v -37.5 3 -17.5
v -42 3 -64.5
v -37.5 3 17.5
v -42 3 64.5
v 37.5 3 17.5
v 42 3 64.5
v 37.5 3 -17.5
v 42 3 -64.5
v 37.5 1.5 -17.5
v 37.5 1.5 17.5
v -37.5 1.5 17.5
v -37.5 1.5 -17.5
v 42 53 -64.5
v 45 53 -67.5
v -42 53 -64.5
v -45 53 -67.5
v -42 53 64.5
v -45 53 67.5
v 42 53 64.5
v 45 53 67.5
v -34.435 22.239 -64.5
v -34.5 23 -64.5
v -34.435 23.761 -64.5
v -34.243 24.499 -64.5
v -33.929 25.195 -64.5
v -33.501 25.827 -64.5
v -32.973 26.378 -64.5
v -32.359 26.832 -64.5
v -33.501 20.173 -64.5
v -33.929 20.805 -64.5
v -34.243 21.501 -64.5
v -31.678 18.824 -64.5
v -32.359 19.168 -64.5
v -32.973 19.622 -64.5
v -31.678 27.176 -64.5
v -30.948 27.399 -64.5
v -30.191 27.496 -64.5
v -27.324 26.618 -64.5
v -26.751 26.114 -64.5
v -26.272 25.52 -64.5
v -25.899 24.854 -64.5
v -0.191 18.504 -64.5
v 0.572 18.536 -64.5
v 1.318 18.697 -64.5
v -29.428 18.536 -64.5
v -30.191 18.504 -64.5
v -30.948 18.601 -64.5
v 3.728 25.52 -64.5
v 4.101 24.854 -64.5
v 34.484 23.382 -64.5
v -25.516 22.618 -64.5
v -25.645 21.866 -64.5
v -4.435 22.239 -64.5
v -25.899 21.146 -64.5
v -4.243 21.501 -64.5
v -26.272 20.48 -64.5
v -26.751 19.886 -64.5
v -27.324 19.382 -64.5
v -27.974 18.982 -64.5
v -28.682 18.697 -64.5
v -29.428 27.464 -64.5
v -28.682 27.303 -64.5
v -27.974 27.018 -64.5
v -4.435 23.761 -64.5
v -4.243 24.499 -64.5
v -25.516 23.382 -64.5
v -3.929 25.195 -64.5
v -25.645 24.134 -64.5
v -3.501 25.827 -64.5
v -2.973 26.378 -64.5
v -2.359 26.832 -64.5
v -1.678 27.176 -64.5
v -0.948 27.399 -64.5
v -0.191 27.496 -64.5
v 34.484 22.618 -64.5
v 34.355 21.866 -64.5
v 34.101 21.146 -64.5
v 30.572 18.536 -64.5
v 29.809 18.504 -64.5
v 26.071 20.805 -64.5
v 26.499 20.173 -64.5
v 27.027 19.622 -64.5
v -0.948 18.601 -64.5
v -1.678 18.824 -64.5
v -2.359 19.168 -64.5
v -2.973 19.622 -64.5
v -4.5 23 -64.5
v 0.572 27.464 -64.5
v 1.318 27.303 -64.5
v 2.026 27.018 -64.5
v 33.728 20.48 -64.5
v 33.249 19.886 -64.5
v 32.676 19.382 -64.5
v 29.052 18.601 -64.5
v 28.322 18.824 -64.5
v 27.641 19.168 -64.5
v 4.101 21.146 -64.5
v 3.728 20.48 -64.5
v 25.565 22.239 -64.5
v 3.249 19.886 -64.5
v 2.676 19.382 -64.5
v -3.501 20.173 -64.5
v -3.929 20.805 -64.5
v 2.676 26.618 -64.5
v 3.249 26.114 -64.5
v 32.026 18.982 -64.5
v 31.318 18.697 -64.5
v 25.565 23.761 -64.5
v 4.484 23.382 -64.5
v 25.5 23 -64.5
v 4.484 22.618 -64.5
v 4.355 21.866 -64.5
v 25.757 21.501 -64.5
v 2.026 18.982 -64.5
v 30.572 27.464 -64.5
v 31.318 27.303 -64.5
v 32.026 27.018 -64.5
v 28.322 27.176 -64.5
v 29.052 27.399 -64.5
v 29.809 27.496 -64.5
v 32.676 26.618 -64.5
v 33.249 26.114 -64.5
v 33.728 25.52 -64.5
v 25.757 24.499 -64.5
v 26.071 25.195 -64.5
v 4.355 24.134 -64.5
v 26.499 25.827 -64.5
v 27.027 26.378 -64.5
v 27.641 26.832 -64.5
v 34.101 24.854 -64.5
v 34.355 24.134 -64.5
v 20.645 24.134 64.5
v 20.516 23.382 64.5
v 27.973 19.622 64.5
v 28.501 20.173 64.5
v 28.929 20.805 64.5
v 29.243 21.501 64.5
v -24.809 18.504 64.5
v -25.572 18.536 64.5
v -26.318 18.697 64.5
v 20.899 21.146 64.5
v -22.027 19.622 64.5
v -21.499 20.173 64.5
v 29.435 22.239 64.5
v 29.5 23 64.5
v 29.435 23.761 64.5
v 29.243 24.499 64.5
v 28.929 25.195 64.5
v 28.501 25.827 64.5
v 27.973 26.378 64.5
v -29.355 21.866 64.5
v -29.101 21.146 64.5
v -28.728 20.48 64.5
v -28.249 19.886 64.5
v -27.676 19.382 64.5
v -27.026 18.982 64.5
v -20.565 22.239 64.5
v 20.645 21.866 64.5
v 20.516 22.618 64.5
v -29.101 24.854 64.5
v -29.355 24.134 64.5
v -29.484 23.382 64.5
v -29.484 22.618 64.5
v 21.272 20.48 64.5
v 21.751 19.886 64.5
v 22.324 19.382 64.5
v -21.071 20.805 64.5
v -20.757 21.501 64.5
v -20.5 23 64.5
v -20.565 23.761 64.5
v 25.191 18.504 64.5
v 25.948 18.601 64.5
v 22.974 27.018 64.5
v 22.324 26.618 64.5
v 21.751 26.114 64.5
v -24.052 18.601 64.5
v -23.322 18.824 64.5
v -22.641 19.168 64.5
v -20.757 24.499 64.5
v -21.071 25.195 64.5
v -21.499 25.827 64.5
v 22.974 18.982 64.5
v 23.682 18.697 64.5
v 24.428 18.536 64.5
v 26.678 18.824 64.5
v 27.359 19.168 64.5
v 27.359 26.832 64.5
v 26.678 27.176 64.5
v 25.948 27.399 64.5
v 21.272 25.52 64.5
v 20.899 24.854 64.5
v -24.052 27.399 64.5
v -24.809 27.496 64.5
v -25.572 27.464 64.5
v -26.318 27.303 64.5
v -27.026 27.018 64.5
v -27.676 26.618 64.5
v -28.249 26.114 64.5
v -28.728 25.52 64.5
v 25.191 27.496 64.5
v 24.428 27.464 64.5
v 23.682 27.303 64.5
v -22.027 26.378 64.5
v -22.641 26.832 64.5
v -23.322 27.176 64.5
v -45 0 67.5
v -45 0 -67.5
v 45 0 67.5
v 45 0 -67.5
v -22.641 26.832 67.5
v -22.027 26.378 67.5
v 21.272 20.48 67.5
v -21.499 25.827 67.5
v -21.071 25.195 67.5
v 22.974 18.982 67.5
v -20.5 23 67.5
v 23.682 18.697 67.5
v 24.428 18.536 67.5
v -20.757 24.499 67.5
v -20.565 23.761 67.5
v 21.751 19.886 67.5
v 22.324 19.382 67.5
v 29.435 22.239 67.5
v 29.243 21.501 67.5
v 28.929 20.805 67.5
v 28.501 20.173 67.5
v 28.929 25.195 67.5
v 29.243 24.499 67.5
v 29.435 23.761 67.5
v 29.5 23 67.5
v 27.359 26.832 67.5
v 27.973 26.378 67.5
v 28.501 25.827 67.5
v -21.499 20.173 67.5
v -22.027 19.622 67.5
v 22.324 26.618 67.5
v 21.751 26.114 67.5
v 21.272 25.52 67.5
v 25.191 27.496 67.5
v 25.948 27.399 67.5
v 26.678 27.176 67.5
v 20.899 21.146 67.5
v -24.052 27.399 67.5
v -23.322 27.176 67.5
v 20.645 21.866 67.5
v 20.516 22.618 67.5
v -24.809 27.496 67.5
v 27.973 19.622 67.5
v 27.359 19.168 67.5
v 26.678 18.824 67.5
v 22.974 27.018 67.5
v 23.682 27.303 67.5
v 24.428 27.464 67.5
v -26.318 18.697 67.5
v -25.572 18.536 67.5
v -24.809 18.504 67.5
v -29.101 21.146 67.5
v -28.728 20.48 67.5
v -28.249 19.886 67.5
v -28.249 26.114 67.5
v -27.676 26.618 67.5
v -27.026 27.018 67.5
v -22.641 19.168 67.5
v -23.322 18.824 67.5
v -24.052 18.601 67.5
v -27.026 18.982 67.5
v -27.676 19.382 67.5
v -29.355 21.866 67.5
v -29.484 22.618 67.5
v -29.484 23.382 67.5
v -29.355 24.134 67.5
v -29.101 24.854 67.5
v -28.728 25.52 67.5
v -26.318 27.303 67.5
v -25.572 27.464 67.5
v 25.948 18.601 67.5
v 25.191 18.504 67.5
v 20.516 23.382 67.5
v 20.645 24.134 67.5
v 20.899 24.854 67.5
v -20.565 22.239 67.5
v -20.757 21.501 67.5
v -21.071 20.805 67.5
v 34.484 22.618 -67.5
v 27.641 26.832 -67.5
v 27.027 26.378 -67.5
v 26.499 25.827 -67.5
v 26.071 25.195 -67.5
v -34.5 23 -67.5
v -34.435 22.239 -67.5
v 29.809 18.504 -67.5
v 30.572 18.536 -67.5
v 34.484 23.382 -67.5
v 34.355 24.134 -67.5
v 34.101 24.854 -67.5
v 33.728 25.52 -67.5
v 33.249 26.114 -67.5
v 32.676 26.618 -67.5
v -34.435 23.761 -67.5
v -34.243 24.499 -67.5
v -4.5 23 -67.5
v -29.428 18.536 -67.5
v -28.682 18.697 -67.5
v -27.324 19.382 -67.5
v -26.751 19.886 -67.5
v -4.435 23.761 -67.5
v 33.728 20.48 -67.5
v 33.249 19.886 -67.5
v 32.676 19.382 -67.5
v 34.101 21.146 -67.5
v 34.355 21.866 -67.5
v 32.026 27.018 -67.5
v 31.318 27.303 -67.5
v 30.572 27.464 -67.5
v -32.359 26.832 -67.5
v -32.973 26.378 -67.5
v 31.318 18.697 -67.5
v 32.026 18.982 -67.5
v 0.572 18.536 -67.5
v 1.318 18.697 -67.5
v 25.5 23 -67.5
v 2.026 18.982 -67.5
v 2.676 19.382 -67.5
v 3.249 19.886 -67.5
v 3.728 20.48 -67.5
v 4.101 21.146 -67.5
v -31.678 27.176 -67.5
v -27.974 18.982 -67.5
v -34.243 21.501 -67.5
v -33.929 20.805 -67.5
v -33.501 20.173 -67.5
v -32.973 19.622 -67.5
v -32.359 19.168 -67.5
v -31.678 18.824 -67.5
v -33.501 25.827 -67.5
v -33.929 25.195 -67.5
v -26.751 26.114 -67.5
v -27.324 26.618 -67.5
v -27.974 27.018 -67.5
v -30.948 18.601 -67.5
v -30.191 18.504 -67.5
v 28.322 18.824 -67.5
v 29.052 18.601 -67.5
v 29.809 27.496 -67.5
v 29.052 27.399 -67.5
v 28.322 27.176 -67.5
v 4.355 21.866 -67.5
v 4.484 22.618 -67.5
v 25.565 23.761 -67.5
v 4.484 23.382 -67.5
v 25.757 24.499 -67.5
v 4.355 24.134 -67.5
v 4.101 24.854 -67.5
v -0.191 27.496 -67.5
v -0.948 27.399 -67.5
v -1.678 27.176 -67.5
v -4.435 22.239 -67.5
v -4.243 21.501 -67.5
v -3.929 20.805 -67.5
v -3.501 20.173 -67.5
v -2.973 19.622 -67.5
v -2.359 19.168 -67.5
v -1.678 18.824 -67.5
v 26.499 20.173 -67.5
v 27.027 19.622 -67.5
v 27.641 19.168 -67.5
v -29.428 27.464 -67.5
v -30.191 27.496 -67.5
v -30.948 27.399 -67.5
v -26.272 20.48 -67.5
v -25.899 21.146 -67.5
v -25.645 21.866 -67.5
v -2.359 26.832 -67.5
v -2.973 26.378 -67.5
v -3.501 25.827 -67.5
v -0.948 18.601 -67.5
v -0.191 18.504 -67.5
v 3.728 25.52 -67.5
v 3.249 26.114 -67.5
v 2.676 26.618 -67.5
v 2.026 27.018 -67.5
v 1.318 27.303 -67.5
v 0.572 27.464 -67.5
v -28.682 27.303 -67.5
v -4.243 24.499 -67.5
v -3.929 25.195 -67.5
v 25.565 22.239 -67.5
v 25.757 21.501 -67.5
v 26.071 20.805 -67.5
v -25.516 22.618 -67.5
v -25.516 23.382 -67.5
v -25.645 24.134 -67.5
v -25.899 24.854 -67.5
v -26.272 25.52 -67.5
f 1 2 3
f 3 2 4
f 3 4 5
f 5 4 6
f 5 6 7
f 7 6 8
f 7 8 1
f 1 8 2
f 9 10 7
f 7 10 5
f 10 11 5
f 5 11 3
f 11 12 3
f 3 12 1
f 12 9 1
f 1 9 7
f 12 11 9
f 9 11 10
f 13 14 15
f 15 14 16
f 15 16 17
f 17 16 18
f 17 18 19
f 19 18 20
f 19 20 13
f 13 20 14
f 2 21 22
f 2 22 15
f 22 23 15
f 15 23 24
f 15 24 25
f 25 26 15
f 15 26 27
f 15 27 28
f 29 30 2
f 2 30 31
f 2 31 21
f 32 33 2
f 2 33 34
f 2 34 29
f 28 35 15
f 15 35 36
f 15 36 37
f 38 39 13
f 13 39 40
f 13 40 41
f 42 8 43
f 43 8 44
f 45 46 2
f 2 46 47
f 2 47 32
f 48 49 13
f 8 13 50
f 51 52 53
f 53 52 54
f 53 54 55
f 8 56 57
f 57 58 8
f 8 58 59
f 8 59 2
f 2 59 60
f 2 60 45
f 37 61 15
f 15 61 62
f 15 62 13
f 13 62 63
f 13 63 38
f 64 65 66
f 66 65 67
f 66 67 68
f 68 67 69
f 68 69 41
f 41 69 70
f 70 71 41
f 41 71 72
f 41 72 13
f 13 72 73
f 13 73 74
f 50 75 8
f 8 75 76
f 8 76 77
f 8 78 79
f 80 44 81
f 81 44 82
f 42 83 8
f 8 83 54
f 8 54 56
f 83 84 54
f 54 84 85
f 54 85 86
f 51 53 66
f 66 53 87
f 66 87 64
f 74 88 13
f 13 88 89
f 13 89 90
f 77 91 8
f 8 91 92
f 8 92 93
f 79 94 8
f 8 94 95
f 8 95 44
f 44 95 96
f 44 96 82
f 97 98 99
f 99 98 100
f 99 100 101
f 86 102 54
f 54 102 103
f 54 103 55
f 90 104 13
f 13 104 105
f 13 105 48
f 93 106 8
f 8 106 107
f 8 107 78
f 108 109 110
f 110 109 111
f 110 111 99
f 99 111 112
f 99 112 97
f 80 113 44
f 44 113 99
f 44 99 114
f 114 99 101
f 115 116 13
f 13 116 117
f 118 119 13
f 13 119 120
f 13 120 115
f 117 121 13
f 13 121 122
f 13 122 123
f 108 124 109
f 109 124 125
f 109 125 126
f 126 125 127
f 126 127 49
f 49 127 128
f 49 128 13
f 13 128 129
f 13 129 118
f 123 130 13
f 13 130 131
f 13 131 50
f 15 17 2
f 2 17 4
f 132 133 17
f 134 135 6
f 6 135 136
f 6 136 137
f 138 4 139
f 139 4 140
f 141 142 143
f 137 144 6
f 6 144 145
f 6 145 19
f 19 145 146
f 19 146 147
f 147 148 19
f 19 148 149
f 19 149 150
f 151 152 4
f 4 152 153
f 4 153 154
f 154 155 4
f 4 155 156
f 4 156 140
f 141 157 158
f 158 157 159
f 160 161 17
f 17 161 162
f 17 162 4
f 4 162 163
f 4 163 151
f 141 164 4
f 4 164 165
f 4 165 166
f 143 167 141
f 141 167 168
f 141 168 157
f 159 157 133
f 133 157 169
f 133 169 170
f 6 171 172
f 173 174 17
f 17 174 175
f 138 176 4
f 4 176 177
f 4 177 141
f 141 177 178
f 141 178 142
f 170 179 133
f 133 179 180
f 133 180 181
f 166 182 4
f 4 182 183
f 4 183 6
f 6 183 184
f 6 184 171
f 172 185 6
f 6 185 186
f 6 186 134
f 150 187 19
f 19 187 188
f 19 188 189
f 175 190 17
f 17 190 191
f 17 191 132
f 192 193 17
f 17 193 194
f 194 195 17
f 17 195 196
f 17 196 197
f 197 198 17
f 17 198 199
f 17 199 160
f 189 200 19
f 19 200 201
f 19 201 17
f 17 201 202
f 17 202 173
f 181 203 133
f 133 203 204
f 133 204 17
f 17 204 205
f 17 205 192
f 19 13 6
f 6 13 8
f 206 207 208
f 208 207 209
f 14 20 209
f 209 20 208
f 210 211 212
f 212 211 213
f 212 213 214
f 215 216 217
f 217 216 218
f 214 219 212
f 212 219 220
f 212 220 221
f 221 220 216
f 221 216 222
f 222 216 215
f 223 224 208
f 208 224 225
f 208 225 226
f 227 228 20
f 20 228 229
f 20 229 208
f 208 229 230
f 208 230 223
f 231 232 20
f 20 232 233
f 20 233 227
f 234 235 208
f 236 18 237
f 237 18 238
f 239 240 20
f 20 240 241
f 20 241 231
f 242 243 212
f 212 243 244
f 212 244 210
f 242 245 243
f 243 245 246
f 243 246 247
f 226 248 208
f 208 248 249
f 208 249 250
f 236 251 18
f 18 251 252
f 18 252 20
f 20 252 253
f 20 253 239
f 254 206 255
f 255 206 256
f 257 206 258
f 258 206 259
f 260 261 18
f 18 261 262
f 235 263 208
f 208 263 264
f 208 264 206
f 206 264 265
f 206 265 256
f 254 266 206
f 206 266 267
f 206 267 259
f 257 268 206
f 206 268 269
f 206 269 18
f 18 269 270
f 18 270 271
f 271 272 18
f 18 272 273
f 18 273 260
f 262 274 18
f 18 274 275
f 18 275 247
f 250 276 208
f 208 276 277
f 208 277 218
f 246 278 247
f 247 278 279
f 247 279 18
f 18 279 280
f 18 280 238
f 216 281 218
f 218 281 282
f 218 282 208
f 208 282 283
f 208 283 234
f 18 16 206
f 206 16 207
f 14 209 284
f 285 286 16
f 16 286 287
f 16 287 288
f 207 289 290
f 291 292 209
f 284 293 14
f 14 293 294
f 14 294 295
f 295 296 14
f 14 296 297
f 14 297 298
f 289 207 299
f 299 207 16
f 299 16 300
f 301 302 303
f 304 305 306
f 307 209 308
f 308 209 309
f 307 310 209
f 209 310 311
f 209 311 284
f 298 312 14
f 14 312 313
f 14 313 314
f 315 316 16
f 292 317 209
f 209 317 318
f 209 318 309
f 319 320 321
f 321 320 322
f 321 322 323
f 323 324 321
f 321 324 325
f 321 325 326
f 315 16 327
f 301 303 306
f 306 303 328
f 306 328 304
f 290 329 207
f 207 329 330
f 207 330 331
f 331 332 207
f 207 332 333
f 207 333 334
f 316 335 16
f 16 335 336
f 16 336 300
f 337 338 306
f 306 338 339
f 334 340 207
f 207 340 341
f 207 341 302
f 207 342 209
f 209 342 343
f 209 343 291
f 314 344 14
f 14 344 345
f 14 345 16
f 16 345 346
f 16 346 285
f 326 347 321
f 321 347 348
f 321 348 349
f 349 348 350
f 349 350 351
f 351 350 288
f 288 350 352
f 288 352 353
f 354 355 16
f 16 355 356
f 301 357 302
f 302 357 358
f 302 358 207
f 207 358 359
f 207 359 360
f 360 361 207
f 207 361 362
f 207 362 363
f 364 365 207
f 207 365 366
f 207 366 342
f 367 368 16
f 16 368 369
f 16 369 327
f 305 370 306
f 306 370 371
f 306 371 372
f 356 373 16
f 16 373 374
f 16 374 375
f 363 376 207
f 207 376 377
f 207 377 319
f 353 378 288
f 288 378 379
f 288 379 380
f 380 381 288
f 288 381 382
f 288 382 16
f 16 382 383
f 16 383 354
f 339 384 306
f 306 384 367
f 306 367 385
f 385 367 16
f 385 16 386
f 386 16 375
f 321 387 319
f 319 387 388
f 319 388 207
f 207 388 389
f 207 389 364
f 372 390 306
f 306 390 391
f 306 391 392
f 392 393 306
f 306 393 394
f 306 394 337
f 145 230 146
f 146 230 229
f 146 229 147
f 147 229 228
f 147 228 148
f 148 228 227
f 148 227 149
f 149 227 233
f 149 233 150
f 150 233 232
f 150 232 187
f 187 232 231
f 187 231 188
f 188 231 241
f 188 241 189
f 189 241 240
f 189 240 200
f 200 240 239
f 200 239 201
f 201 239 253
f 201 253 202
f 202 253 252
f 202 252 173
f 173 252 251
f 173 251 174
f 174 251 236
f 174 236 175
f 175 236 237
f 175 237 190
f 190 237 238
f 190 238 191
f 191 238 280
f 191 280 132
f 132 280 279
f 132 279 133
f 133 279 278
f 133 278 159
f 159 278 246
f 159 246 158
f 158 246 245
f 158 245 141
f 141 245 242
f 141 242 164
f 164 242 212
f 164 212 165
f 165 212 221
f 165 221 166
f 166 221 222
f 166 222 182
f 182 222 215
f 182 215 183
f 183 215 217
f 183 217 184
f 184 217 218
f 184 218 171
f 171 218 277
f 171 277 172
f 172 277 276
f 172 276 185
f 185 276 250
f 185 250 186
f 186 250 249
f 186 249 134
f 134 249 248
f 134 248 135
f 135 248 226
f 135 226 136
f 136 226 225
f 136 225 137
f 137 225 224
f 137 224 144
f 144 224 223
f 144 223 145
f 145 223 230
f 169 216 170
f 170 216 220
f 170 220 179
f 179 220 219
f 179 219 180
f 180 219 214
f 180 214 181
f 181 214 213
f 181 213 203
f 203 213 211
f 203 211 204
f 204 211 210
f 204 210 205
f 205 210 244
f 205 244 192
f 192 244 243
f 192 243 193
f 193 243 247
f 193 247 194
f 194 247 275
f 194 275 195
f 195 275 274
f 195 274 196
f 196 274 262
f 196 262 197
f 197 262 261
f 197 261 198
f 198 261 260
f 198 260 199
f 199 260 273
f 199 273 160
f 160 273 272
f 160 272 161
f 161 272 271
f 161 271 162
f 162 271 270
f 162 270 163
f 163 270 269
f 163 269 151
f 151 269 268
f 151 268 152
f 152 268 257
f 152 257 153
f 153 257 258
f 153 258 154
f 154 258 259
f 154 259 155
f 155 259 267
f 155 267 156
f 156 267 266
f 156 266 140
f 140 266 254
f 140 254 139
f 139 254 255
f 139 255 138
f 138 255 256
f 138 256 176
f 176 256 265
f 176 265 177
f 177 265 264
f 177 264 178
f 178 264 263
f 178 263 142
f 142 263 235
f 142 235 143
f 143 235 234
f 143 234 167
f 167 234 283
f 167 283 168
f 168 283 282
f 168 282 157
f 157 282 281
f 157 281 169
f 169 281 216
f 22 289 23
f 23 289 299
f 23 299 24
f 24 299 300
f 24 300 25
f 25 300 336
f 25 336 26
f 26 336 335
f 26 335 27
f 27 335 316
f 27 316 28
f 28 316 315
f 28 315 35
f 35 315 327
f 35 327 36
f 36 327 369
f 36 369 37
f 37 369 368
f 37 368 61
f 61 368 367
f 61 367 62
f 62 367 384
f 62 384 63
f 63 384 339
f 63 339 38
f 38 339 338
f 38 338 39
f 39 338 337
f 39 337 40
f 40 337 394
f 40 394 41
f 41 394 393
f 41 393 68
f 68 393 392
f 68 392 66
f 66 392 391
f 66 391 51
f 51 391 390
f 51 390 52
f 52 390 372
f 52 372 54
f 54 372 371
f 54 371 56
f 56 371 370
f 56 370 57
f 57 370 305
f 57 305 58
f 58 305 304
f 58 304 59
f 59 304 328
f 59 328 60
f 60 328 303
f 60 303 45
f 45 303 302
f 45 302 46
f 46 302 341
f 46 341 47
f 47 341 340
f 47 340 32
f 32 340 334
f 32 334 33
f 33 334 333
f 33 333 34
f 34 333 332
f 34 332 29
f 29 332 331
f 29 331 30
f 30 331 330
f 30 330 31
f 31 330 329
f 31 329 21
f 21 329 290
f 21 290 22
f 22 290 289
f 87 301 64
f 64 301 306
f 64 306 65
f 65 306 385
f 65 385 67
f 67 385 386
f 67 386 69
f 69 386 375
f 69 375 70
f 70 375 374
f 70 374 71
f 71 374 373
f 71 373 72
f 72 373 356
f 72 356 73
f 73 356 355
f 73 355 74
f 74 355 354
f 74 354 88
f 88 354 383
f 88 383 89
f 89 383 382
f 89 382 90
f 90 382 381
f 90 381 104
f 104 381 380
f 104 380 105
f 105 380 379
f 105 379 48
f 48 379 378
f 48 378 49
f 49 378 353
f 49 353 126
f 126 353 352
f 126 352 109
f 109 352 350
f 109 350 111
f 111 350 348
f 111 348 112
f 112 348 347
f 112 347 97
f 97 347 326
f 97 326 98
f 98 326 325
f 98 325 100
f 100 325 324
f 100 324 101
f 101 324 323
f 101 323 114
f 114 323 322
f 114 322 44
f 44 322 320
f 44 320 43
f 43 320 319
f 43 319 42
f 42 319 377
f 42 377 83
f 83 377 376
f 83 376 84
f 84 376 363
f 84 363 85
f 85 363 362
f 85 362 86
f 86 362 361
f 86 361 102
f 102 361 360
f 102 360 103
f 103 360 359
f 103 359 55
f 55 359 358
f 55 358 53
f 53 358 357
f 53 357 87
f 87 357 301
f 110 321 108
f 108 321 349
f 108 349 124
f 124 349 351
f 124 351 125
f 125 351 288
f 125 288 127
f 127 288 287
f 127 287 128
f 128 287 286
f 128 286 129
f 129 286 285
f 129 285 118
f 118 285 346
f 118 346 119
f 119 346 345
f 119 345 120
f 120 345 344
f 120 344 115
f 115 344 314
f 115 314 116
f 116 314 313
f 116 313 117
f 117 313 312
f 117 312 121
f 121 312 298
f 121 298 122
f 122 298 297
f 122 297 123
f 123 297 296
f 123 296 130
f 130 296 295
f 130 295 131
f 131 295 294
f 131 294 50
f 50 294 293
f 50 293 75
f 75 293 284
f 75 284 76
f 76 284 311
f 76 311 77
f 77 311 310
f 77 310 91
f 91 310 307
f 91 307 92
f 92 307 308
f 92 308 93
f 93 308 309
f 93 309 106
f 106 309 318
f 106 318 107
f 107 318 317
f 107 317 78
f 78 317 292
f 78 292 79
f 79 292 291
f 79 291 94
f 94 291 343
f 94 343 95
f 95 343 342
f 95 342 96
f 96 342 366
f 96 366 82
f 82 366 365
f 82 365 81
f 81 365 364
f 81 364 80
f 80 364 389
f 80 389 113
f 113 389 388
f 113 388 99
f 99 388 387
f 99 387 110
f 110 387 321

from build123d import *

# Parameters (mm, degrees)
SKETCH1_W           = 90
SKETCH1_H           = 135
BOSS_EXTRUDE1_DEPTH = 3
SKETCH2_W           = 75
SKETCH2_H           = 35
CUT_EXTRUDE1_DEPTH  = 1.5
SKETCH3_W           = 90
SKETCH3_H           = 135
SKETCH3_W_2         = 84
SKETCH3_H_2         = 129
BOSS_EXTRUDE2_DEPTH = 50
SKETCH4_R           = 4.5
CUT_EXTRUDE2_DEPTH  = 3
SKETCH5_R           = 4.5
CUT_EXTRUDE3_DEPTH  = 3


with BuildPart() as part:
    # Sketch1 → Boss-Extrude1 (new body)
    with BuildSketch(Plane(origin=(0, 0, 0), x_dir=(1, 0, 0), z_dir=(0, 1, 0))):
        Rectangle(SKETCH1_W, SKETCH1_H)
    extrude(amount=BOSS_EXTRUDE1_DEPTH)

    # Sketch2 → Cut-Extrude1 (cut)
    with BuildSketch(Plane(origin=(0, 3, 0), x_dir=(1, 0, 0), z_dir=(0, 1, 0))):
        Rectangle(SKETCH2_W, SKETCH2_H)
    extrude(amount=-CUT_EXTRUDE1_DEPTH, mode=Mode.SUBTRACT)

    # Sketch3 → Boss-Extrude2 (add)
    with BuildSketch(Plane(origin=(0, 3, 0), x_dir=(1, 0, 0), z_dir=(0, 1, 0))):
        Rectangle(SKETCH3_W, SKETCH3_H)
        Rectangle(SKETCH3_W_2, SKETCH3_H_2, mode=Mode.SUBTRACT)
    extrude(amount=BOSS_EXTRUDE2_DEPTH)

    # Sketch4 → Cut-Extrude2 (cut)
    with BuildSketch(Plane.XY.offset(67.5)):
        with Locations((-25, 23)):
            Circle(SKETCH4_R)
        with Locations((25, 23)):
            Circle(SKETCH4_R)
    extrude(amount=-CUT_EXTRUDE2_DEPTH, mode=Mode.SUBTRACT)

    # Sketch5 → Cut-Extrude3 (cut)
    with BuildSketch(Plane(origin=(0, 0, -67.5), x_dir=(-1, 0, 0), z_dir=(0, 0, -1))):
        with Locations((-30, 23)):
            Circle(SKETCH5_R)
        with Locations((0, 23)):
            Circle(SKETCH5_R)
        with Locations((30, 23)):
            Circle(SKETCH5_R)
    extrude(amount=-CUT_EXTRUDE3_DEPTH, mode=Mode.SUBTRACT)


solid = part.part
